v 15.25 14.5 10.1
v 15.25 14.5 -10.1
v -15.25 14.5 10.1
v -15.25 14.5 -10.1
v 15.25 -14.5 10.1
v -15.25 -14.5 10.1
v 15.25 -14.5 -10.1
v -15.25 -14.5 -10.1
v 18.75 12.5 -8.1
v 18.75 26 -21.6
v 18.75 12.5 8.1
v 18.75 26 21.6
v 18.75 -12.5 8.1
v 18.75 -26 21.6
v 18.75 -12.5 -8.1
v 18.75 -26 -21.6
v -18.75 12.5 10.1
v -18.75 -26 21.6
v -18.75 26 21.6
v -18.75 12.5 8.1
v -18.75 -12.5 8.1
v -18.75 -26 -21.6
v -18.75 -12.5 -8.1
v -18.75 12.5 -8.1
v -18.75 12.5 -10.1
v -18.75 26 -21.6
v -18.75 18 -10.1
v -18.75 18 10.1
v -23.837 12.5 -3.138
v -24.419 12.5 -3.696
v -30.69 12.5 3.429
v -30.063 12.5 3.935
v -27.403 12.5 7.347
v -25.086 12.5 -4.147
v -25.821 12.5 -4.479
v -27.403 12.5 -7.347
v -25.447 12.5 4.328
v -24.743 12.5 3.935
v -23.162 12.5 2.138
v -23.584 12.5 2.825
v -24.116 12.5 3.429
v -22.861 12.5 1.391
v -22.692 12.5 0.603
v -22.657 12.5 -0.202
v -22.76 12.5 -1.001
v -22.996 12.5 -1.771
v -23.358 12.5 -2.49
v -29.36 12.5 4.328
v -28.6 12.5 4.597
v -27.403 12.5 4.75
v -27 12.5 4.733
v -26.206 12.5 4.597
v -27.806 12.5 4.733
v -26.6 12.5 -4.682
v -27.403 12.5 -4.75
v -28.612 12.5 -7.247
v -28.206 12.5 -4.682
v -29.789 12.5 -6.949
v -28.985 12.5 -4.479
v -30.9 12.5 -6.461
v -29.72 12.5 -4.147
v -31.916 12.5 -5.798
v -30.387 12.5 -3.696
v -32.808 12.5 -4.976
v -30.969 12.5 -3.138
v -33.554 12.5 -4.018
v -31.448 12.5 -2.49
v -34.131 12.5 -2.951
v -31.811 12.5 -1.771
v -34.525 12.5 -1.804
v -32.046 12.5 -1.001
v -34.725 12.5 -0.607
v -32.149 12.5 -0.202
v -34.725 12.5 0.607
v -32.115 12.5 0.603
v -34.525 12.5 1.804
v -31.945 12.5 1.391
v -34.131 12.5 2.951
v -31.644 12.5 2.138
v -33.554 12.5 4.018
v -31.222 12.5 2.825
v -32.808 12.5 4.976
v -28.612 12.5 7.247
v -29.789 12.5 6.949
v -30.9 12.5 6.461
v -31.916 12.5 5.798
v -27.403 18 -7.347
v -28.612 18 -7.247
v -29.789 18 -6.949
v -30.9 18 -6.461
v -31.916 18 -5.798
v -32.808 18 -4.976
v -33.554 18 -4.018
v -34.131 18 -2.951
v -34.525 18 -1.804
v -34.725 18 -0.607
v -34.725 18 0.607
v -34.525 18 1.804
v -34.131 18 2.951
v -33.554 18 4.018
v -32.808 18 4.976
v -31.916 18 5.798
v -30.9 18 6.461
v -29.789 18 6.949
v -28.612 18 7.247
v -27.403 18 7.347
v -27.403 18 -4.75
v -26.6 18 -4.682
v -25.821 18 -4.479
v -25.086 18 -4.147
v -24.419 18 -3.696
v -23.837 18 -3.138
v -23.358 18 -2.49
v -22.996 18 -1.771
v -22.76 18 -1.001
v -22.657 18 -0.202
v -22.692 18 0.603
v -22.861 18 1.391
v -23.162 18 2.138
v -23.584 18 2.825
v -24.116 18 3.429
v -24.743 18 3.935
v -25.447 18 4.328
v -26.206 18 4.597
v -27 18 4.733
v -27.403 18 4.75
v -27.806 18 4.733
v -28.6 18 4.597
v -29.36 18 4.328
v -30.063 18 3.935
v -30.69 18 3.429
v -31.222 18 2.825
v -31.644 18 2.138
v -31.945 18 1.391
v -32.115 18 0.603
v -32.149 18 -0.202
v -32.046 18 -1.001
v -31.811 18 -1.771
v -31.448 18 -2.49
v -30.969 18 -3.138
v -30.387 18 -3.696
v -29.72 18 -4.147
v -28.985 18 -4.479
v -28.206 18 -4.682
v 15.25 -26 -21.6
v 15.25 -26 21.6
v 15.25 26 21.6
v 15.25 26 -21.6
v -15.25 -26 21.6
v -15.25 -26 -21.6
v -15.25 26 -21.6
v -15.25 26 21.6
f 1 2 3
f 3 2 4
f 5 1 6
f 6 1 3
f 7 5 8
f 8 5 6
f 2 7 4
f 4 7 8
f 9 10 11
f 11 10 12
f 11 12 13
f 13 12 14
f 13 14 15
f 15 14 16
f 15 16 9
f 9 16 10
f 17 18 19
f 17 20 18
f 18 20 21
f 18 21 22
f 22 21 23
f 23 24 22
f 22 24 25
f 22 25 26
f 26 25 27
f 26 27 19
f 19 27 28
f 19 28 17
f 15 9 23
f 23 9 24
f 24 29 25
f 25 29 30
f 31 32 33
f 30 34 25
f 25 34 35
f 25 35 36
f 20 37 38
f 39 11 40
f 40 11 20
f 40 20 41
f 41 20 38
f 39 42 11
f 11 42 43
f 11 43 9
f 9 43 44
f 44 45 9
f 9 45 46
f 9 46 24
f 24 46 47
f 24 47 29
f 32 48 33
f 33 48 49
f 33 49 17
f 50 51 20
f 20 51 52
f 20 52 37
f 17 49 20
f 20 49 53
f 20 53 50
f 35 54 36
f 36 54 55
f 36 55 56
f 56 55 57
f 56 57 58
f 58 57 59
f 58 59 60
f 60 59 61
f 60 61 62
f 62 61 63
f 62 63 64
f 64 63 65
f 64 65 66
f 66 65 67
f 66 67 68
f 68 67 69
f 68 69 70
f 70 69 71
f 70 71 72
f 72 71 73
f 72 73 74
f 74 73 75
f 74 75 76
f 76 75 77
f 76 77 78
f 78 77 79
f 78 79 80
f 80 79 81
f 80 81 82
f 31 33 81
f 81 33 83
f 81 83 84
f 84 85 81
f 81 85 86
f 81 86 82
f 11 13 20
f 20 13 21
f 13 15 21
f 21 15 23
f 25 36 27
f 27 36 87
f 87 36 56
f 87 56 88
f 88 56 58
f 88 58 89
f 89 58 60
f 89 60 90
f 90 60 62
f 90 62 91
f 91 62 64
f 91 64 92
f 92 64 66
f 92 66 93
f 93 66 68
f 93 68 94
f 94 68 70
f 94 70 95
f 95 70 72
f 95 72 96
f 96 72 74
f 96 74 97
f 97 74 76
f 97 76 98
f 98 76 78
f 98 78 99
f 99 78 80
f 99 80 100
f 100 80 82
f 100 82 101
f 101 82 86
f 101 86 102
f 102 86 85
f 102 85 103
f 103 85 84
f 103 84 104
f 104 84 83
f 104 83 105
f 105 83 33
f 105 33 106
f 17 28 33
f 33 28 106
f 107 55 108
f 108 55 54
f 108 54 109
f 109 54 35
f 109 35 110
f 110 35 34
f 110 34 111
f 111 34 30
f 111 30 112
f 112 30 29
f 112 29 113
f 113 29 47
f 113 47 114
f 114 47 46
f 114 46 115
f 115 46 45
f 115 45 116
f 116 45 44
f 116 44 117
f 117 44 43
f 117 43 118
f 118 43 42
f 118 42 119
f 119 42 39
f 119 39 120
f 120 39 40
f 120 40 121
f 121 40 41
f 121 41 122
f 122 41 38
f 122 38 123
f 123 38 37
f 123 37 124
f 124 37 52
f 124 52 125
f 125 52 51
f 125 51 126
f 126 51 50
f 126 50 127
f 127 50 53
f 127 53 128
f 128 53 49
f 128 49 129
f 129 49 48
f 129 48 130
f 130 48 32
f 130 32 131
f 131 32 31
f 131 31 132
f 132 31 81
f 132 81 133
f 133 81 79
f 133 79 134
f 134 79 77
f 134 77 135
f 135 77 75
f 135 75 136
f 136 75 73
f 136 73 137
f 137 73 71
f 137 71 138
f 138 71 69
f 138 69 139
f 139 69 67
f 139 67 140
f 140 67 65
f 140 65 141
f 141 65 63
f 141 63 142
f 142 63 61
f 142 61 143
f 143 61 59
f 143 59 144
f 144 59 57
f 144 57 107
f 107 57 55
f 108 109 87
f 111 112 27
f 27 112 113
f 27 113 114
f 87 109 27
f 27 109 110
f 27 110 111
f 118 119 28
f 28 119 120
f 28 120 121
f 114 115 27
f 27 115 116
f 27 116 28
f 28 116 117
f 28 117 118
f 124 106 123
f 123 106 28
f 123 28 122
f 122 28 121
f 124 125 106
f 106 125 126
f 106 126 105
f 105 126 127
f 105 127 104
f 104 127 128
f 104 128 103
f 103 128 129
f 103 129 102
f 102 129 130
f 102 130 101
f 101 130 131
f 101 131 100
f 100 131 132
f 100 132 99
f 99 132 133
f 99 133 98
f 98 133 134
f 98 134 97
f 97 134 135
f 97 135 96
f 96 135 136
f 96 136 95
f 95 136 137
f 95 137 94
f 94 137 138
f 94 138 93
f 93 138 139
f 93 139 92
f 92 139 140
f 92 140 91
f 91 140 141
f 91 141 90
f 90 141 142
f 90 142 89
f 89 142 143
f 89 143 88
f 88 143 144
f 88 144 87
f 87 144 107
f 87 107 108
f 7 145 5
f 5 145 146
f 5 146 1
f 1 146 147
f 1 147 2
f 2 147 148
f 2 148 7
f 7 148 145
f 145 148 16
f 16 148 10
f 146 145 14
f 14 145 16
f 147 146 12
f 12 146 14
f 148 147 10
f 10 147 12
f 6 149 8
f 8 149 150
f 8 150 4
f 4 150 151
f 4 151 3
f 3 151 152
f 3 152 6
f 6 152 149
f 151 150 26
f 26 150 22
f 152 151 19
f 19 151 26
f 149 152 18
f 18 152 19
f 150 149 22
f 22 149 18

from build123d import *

# Parameters (mm, degrees)
SKETCH1_W                = 20.2
SKETCH1_H                = 29
SKETCH1_W_2              = 16.2
SKETCH1_H_2              = 25
BOSS_EXTRUDE1_DEPTH      = 18.75
BOSS_EXTRUDE2_DEPTH      = 3.5
BOSS_EXTRUDE2_DEPTH_BACK = 2
SKETCH2_R                = 4.75
SKETCH3_W                = 43.2
SKETCH3_H                = 52
SKETCH3_W_2              = 16.2
SKETCH3_H_2              = 25
BOSS_EXTRUDE4_DEPTH      = 3.5


with BuildPart() as part:
    # Sketch1 → Boss-Extrude1 (new, symmetric)
    with BuildSketch(Plane(origin=(0, 0, 0), x_dir=(0, 0, -1), z_dir=(1, 0, 0))):
        Rectangle(SKETCH1_W, SKETCH1_H)
        Rectangle(SKETCH1_W_2, SKETCH1_H_2, mode=Mode.SUBTRACT)
    extrude(amount=BOSS_EXTRUDE1_DEPTH, both=True)

    # Sketch2 → Boss-Extrude2 (add, two sides: drawn at the far end of the back side and taken through both)
    with BuildSketch(Plane(origin=(0, 14.5, 0), x_dir=(1, 0, 0), z_dir=(0, 1, 0)).offset(-BOSS_EXTRUDE2_DEPTH_BACK)):
        with BuildLine():
            Line((-18.75, -10.1), (-18.75, 10.1))
            Line((-18.75, 10.1), (-27.403040645, 7.346959355))
            ThreePointArc((-27.403040645, 7.346959355), (-34.75, 0), (-27.403040645, -7.346959355))
            Line((-27.403040645, -7.346959355), (-18.75, -10.1))
        make_face()
        with Locations(Location((-27.403040645, 0, 0), (0, 0, 270))):
            Circle(SKETCH2_R, mode=Mode.SUBTRACT)
    extrude(amount=BOSS_EXTRUDE2_DEPTH + BOSS_EXTRUDE2_DEPTH_BACK)

    # Sketch3 → Boss-Extrude4 (add)
    with BuildSketch(Plane(origin=(18.75, 0, 0), x_dir=(0, 0, -1), z_dir=(1, 0, 0))):
        Rectangle(SKETCH3_W, SKETCH3_H)
        Rectangle(SKETCH3_W_2, SKETCH3_H_2, mode=Mode.SUBTRACT)
    boss_extrude4 = extrude(amount=-BOSS_EXTRUDE4_DEPTH)

    # Mirror1: Boss-Extrude4 across plane
    add(boss_extrude4.mirror(Plane(origin=(0, 0, 0), x_dir=(0, 0, 1), z_dir=(1, 0, 0))))


solid = part.part
